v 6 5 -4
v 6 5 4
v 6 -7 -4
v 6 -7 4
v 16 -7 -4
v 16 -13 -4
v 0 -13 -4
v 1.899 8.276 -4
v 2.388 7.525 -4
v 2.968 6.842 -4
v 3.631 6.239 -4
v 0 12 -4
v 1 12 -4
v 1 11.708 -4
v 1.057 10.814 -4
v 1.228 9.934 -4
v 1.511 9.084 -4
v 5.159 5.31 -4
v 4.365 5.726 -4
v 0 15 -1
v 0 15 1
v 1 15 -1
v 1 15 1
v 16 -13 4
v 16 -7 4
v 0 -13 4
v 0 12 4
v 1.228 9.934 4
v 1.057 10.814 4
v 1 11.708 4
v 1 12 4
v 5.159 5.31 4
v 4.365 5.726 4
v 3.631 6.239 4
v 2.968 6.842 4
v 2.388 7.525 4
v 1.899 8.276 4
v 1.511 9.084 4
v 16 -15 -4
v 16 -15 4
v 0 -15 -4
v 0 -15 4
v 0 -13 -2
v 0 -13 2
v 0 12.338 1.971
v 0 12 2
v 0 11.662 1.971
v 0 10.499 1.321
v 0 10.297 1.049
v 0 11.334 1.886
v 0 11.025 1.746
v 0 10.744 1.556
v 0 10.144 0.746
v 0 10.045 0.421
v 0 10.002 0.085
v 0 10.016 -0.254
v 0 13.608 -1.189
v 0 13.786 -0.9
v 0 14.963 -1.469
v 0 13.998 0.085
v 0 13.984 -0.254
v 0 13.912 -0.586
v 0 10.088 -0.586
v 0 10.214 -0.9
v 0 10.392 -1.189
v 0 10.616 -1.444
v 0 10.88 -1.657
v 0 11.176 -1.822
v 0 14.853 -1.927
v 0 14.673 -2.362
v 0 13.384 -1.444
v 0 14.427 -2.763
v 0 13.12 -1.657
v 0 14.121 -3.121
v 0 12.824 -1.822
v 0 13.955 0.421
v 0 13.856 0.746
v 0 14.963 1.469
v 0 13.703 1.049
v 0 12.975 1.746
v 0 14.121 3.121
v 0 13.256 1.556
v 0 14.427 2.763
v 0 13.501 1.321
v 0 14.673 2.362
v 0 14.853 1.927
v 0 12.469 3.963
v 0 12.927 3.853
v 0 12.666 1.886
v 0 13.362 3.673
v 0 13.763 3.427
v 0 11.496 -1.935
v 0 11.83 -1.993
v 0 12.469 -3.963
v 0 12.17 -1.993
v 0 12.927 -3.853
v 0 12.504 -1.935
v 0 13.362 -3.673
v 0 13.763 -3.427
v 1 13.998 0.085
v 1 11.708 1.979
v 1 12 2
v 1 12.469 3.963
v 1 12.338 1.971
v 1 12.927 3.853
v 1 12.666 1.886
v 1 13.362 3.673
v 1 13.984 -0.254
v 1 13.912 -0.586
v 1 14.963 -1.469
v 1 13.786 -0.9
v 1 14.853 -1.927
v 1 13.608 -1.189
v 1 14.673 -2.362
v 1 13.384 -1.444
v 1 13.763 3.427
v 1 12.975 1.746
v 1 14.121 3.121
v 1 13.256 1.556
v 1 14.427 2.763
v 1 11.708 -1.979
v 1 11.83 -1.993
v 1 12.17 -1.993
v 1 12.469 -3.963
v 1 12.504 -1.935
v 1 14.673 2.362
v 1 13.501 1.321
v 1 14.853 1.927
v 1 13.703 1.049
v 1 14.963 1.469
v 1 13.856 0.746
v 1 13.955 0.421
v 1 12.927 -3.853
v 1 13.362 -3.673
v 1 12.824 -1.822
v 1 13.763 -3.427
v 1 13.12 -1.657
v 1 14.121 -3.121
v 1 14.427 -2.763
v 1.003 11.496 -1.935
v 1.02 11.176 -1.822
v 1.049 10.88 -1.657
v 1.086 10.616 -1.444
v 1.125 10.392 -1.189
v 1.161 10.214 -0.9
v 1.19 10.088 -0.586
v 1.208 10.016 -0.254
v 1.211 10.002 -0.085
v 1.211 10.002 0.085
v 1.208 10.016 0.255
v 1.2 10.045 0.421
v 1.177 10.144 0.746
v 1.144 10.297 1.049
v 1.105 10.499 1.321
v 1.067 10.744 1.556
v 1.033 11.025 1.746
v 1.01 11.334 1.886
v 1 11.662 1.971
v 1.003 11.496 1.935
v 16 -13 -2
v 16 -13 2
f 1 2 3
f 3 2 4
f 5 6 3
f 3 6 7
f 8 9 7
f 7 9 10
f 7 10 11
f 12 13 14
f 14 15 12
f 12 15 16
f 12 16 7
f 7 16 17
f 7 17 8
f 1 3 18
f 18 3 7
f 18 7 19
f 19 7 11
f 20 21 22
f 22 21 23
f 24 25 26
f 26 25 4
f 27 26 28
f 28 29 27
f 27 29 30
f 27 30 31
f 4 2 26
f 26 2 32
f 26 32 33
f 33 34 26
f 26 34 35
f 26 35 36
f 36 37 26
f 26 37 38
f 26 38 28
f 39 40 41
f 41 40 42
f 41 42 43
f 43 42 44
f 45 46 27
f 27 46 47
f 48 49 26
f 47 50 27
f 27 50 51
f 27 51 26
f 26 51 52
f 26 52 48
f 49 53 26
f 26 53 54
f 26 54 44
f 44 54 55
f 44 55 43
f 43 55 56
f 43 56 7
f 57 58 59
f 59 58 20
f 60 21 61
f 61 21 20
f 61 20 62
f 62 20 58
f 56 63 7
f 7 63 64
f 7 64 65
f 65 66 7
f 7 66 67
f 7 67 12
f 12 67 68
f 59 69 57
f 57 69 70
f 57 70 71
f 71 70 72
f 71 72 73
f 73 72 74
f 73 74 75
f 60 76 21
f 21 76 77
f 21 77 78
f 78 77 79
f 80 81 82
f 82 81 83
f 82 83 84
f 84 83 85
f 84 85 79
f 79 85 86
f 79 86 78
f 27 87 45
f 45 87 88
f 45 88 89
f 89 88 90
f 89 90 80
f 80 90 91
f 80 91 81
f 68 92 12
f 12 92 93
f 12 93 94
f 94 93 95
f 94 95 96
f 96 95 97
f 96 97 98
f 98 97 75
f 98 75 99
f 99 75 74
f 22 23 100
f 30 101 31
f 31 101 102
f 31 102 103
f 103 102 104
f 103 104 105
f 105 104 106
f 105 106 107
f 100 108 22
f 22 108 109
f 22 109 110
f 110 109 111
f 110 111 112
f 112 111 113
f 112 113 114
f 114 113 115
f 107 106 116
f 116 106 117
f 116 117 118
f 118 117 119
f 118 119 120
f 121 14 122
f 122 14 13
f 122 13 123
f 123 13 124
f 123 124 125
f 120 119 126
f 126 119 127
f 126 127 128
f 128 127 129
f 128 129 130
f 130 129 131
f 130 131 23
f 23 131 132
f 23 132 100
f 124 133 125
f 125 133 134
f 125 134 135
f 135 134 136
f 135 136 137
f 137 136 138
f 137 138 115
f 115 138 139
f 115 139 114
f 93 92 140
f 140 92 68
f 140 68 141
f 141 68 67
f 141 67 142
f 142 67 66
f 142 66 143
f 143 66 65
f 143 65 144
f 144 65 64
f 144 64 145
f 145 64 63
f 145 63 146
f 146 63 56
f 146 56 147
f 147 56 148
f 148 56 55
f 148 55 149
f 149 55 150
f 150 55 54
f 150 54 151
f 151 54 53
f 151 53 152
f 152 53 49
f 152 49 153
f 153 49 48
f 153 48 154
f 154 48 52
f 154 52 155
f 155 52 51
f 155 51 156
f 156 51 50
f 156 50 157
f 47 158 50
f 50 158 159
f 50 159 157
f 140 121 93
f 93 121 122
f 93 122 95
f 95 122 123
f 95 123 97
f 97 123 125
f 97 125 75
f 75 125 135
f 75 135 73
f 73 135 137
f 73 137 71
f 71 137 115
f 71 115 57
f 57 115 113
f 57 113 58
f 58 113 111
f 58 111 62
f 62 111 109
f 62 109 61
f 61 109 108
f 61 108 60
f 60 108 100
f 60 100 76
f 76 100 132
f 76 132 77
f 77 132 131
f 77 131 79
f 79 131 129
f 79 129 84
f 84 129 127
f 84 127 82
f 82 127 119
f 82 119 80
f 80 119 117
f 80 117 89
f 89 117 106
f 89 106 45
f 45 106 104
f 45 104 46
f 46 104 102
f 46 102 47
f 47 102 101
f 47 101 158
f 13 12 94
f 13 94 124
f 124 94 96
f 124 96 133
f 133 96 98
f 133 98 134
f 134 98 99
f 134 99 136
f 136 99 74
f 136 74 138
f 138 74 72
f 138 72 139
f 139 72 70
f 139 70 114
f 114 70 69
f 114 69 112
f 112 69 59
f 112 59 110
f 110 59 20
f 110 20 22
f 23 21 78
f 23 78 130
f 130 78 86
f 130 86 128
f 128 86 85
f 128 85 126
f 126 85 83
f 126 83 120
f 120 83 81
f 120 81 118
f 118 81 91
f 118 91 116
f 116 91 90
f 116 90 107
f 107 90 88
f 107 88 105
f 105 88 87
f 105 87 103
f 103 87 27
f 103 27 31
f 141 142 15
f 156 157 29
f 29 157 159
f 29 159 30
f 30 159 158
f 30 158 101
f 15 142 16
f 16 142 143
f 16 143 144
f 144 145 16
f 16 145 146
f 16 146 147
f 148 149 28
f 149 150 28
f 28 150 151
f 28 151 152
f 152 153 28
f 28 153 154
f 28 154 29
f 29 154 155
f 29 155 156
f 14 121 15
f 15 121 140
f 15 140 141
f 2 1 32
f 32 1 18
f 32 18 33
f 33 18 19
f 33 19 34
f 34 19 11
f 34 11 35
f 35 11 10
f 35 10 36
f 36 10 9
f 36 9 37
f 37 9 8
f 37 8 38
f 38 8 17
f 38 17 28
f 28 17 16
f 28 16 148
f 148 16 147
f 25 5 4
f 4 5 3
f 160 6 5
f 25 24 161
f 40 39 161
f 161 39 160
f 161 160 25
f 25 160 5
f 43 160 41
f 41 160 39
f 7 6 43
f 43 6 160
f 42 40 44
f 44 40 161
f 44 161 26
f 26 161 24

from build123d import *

# Parameters (mm, degrees)
SKETCH1_W           = 8
SKETCH1_H           = 30
BOSS_EXTRUDE1_DEPTH = 6
SKETCH2_W           = 8
SKETCH2_H           = 10
CUT_EXTRUDE1_DEPTH  = 5
CUT_EXTRUDE2_REACH  = 18.643
SKETCH3_R           = 2
FILLET1_R           = 3
FILLET2_R           = 7
SKETCH4_W           = 8
SKETCH4_H           = 8
BOSS_EXTRUDE2_DEPTH = 10
CUT_EXTRUDE4_REACH  = 24.293


with BuildPart() as part:
    # Sketch1 → Boss-Extrude1 (new body)
    with BuildSketch(Plane(origin=(0, 0, 0), x_dir=(0, 0, -1), z_dir=(1, 0, 0))):
        Rectangle(SKETCH1_W, SKETCH1_H)
    extrude(amount=BOSS_EXTRUDE1_DEPTH)

    # Sketch2 → Cut-Extrude1 (cut)
    with BuildSketch(Plane(origin=(6, 0, 0), x_dir=(0, 0, -1), z_dir=(1, 0, 0))):
        with Locations((0, 10)):
            Rectangle(SKETCH2_W, SKETCH2_H)
    extrude(amount=-CUT_EXTRUDE1_DEPTH, mode=Mode.SUBTRACT)

    # Sketch3 → Cut-Extrude2 (cut, up to next)
    with BuildSketch(Plane.ZY, mode=Mode.PRIVATE) as cut_extrude2_sk1:
        with Locations((0, 12)):
            Circle(SKETCH3_R)
    cut_extrude2_tool1 = extrude(cut_extrude2_sk1.sketch, amount=-CUT_EXTRUDE2_REACH, mode=Mode.PRIVATE) & part.part
    add(cut_extrude2_tool1.solids().sort_by_distance((0, 12, 0))[0], mode=Mode.SUBTRACT)

    # Fillet1
    fillet1_edges = [part.edges().sort_by_distance(p)[0] for p in [
        (0.5, 15, 4),
        (0.5, 15, -4),
    ]]
    fillet(fillet1_edges, radius=FILLET1_R)

    # Fillet2
    # the kernel refuses this fillet: 7 mm, written as the material it adds along each edge
    with BuildSketch(Plane(origin=(1, 5, 4), x_dir=(0, 1, 0), z_dir=(0, 0, -1))) as fillet2_piece_1_section:
        with BuildLine():
            CenterArc((6.708203932, 7), FILLET2_R, 196.601549599, 73.398450401)
            Line((0, 5), (0, 0))
            Line((0, 0), (6.708203932, 0))
        make_face()
    fillet2_piece_1 = extrude(amount=8, mode=Mode.PRIVATE)
    fillet2_piece_1 = fillet2_piece_1 - Plane(origin=(1, 12, 0), x_dir=(0, 0, 1), z_dir=(-1, 0, 0)) * Cylinder(2, 43, mode=Mode.PRIVATE)
    add(fillet2_piece_1)

    # Sketch4 → Boss-Extrude2 (add)
    with BuildSketch(Plane(origin=(6, 0, 0), x_dir=(0, 0, -1), z_dir=(1, 0, 0))):
        with Locations((0, -11)):
            Rectangle(SKETCH4_W, SKETCH4_H)
    extrude(amount=BOSS_EXTRUDE2_DEPTH)

    # Sketch6 → Cut-Extrude4 (cut, up to next)
    with BuildSketch(Plane.ZY, mode=Mode.PRIVATE) as cut_extrude4_sk1:
        Polygon((4, -15), (4, -13), (2, -13), align=None)
    cut_extrude4_tool1 = extrude(cut_extrude4_sk1.sketch, amount=-CUT_EXTRUDE4_REACH, mode=Mode.PRIVATE) & part.part
    # Sketch6 → Cut-Extrude4 (cut, up to next)
    with BuildSketch(Plane.ZY, mode=Mode.PRIVATE) as cut_extrude4_sk2:
        Polygon((-4, -15), (-4, -13), (-2, -13), align=None)
    cut_extrude4_tool2 = extrude(cut_extrude4_sk2.sketch, amount=-CUT_EXTRUDE4_REACH, mode=Mode.PRIVATE) & part.part
    add(cut_extrude4_tool1.solids().sort_by_distance((0, -13.666667, 3.333333))[0], mode=Mode.SUBTRACT)
    add(cut_extrude4_tool2.solids().sort_by_distance((0, -13.666667, -3.333333))[0], mode=Mode.SUBTRACT)


solid = part.part
